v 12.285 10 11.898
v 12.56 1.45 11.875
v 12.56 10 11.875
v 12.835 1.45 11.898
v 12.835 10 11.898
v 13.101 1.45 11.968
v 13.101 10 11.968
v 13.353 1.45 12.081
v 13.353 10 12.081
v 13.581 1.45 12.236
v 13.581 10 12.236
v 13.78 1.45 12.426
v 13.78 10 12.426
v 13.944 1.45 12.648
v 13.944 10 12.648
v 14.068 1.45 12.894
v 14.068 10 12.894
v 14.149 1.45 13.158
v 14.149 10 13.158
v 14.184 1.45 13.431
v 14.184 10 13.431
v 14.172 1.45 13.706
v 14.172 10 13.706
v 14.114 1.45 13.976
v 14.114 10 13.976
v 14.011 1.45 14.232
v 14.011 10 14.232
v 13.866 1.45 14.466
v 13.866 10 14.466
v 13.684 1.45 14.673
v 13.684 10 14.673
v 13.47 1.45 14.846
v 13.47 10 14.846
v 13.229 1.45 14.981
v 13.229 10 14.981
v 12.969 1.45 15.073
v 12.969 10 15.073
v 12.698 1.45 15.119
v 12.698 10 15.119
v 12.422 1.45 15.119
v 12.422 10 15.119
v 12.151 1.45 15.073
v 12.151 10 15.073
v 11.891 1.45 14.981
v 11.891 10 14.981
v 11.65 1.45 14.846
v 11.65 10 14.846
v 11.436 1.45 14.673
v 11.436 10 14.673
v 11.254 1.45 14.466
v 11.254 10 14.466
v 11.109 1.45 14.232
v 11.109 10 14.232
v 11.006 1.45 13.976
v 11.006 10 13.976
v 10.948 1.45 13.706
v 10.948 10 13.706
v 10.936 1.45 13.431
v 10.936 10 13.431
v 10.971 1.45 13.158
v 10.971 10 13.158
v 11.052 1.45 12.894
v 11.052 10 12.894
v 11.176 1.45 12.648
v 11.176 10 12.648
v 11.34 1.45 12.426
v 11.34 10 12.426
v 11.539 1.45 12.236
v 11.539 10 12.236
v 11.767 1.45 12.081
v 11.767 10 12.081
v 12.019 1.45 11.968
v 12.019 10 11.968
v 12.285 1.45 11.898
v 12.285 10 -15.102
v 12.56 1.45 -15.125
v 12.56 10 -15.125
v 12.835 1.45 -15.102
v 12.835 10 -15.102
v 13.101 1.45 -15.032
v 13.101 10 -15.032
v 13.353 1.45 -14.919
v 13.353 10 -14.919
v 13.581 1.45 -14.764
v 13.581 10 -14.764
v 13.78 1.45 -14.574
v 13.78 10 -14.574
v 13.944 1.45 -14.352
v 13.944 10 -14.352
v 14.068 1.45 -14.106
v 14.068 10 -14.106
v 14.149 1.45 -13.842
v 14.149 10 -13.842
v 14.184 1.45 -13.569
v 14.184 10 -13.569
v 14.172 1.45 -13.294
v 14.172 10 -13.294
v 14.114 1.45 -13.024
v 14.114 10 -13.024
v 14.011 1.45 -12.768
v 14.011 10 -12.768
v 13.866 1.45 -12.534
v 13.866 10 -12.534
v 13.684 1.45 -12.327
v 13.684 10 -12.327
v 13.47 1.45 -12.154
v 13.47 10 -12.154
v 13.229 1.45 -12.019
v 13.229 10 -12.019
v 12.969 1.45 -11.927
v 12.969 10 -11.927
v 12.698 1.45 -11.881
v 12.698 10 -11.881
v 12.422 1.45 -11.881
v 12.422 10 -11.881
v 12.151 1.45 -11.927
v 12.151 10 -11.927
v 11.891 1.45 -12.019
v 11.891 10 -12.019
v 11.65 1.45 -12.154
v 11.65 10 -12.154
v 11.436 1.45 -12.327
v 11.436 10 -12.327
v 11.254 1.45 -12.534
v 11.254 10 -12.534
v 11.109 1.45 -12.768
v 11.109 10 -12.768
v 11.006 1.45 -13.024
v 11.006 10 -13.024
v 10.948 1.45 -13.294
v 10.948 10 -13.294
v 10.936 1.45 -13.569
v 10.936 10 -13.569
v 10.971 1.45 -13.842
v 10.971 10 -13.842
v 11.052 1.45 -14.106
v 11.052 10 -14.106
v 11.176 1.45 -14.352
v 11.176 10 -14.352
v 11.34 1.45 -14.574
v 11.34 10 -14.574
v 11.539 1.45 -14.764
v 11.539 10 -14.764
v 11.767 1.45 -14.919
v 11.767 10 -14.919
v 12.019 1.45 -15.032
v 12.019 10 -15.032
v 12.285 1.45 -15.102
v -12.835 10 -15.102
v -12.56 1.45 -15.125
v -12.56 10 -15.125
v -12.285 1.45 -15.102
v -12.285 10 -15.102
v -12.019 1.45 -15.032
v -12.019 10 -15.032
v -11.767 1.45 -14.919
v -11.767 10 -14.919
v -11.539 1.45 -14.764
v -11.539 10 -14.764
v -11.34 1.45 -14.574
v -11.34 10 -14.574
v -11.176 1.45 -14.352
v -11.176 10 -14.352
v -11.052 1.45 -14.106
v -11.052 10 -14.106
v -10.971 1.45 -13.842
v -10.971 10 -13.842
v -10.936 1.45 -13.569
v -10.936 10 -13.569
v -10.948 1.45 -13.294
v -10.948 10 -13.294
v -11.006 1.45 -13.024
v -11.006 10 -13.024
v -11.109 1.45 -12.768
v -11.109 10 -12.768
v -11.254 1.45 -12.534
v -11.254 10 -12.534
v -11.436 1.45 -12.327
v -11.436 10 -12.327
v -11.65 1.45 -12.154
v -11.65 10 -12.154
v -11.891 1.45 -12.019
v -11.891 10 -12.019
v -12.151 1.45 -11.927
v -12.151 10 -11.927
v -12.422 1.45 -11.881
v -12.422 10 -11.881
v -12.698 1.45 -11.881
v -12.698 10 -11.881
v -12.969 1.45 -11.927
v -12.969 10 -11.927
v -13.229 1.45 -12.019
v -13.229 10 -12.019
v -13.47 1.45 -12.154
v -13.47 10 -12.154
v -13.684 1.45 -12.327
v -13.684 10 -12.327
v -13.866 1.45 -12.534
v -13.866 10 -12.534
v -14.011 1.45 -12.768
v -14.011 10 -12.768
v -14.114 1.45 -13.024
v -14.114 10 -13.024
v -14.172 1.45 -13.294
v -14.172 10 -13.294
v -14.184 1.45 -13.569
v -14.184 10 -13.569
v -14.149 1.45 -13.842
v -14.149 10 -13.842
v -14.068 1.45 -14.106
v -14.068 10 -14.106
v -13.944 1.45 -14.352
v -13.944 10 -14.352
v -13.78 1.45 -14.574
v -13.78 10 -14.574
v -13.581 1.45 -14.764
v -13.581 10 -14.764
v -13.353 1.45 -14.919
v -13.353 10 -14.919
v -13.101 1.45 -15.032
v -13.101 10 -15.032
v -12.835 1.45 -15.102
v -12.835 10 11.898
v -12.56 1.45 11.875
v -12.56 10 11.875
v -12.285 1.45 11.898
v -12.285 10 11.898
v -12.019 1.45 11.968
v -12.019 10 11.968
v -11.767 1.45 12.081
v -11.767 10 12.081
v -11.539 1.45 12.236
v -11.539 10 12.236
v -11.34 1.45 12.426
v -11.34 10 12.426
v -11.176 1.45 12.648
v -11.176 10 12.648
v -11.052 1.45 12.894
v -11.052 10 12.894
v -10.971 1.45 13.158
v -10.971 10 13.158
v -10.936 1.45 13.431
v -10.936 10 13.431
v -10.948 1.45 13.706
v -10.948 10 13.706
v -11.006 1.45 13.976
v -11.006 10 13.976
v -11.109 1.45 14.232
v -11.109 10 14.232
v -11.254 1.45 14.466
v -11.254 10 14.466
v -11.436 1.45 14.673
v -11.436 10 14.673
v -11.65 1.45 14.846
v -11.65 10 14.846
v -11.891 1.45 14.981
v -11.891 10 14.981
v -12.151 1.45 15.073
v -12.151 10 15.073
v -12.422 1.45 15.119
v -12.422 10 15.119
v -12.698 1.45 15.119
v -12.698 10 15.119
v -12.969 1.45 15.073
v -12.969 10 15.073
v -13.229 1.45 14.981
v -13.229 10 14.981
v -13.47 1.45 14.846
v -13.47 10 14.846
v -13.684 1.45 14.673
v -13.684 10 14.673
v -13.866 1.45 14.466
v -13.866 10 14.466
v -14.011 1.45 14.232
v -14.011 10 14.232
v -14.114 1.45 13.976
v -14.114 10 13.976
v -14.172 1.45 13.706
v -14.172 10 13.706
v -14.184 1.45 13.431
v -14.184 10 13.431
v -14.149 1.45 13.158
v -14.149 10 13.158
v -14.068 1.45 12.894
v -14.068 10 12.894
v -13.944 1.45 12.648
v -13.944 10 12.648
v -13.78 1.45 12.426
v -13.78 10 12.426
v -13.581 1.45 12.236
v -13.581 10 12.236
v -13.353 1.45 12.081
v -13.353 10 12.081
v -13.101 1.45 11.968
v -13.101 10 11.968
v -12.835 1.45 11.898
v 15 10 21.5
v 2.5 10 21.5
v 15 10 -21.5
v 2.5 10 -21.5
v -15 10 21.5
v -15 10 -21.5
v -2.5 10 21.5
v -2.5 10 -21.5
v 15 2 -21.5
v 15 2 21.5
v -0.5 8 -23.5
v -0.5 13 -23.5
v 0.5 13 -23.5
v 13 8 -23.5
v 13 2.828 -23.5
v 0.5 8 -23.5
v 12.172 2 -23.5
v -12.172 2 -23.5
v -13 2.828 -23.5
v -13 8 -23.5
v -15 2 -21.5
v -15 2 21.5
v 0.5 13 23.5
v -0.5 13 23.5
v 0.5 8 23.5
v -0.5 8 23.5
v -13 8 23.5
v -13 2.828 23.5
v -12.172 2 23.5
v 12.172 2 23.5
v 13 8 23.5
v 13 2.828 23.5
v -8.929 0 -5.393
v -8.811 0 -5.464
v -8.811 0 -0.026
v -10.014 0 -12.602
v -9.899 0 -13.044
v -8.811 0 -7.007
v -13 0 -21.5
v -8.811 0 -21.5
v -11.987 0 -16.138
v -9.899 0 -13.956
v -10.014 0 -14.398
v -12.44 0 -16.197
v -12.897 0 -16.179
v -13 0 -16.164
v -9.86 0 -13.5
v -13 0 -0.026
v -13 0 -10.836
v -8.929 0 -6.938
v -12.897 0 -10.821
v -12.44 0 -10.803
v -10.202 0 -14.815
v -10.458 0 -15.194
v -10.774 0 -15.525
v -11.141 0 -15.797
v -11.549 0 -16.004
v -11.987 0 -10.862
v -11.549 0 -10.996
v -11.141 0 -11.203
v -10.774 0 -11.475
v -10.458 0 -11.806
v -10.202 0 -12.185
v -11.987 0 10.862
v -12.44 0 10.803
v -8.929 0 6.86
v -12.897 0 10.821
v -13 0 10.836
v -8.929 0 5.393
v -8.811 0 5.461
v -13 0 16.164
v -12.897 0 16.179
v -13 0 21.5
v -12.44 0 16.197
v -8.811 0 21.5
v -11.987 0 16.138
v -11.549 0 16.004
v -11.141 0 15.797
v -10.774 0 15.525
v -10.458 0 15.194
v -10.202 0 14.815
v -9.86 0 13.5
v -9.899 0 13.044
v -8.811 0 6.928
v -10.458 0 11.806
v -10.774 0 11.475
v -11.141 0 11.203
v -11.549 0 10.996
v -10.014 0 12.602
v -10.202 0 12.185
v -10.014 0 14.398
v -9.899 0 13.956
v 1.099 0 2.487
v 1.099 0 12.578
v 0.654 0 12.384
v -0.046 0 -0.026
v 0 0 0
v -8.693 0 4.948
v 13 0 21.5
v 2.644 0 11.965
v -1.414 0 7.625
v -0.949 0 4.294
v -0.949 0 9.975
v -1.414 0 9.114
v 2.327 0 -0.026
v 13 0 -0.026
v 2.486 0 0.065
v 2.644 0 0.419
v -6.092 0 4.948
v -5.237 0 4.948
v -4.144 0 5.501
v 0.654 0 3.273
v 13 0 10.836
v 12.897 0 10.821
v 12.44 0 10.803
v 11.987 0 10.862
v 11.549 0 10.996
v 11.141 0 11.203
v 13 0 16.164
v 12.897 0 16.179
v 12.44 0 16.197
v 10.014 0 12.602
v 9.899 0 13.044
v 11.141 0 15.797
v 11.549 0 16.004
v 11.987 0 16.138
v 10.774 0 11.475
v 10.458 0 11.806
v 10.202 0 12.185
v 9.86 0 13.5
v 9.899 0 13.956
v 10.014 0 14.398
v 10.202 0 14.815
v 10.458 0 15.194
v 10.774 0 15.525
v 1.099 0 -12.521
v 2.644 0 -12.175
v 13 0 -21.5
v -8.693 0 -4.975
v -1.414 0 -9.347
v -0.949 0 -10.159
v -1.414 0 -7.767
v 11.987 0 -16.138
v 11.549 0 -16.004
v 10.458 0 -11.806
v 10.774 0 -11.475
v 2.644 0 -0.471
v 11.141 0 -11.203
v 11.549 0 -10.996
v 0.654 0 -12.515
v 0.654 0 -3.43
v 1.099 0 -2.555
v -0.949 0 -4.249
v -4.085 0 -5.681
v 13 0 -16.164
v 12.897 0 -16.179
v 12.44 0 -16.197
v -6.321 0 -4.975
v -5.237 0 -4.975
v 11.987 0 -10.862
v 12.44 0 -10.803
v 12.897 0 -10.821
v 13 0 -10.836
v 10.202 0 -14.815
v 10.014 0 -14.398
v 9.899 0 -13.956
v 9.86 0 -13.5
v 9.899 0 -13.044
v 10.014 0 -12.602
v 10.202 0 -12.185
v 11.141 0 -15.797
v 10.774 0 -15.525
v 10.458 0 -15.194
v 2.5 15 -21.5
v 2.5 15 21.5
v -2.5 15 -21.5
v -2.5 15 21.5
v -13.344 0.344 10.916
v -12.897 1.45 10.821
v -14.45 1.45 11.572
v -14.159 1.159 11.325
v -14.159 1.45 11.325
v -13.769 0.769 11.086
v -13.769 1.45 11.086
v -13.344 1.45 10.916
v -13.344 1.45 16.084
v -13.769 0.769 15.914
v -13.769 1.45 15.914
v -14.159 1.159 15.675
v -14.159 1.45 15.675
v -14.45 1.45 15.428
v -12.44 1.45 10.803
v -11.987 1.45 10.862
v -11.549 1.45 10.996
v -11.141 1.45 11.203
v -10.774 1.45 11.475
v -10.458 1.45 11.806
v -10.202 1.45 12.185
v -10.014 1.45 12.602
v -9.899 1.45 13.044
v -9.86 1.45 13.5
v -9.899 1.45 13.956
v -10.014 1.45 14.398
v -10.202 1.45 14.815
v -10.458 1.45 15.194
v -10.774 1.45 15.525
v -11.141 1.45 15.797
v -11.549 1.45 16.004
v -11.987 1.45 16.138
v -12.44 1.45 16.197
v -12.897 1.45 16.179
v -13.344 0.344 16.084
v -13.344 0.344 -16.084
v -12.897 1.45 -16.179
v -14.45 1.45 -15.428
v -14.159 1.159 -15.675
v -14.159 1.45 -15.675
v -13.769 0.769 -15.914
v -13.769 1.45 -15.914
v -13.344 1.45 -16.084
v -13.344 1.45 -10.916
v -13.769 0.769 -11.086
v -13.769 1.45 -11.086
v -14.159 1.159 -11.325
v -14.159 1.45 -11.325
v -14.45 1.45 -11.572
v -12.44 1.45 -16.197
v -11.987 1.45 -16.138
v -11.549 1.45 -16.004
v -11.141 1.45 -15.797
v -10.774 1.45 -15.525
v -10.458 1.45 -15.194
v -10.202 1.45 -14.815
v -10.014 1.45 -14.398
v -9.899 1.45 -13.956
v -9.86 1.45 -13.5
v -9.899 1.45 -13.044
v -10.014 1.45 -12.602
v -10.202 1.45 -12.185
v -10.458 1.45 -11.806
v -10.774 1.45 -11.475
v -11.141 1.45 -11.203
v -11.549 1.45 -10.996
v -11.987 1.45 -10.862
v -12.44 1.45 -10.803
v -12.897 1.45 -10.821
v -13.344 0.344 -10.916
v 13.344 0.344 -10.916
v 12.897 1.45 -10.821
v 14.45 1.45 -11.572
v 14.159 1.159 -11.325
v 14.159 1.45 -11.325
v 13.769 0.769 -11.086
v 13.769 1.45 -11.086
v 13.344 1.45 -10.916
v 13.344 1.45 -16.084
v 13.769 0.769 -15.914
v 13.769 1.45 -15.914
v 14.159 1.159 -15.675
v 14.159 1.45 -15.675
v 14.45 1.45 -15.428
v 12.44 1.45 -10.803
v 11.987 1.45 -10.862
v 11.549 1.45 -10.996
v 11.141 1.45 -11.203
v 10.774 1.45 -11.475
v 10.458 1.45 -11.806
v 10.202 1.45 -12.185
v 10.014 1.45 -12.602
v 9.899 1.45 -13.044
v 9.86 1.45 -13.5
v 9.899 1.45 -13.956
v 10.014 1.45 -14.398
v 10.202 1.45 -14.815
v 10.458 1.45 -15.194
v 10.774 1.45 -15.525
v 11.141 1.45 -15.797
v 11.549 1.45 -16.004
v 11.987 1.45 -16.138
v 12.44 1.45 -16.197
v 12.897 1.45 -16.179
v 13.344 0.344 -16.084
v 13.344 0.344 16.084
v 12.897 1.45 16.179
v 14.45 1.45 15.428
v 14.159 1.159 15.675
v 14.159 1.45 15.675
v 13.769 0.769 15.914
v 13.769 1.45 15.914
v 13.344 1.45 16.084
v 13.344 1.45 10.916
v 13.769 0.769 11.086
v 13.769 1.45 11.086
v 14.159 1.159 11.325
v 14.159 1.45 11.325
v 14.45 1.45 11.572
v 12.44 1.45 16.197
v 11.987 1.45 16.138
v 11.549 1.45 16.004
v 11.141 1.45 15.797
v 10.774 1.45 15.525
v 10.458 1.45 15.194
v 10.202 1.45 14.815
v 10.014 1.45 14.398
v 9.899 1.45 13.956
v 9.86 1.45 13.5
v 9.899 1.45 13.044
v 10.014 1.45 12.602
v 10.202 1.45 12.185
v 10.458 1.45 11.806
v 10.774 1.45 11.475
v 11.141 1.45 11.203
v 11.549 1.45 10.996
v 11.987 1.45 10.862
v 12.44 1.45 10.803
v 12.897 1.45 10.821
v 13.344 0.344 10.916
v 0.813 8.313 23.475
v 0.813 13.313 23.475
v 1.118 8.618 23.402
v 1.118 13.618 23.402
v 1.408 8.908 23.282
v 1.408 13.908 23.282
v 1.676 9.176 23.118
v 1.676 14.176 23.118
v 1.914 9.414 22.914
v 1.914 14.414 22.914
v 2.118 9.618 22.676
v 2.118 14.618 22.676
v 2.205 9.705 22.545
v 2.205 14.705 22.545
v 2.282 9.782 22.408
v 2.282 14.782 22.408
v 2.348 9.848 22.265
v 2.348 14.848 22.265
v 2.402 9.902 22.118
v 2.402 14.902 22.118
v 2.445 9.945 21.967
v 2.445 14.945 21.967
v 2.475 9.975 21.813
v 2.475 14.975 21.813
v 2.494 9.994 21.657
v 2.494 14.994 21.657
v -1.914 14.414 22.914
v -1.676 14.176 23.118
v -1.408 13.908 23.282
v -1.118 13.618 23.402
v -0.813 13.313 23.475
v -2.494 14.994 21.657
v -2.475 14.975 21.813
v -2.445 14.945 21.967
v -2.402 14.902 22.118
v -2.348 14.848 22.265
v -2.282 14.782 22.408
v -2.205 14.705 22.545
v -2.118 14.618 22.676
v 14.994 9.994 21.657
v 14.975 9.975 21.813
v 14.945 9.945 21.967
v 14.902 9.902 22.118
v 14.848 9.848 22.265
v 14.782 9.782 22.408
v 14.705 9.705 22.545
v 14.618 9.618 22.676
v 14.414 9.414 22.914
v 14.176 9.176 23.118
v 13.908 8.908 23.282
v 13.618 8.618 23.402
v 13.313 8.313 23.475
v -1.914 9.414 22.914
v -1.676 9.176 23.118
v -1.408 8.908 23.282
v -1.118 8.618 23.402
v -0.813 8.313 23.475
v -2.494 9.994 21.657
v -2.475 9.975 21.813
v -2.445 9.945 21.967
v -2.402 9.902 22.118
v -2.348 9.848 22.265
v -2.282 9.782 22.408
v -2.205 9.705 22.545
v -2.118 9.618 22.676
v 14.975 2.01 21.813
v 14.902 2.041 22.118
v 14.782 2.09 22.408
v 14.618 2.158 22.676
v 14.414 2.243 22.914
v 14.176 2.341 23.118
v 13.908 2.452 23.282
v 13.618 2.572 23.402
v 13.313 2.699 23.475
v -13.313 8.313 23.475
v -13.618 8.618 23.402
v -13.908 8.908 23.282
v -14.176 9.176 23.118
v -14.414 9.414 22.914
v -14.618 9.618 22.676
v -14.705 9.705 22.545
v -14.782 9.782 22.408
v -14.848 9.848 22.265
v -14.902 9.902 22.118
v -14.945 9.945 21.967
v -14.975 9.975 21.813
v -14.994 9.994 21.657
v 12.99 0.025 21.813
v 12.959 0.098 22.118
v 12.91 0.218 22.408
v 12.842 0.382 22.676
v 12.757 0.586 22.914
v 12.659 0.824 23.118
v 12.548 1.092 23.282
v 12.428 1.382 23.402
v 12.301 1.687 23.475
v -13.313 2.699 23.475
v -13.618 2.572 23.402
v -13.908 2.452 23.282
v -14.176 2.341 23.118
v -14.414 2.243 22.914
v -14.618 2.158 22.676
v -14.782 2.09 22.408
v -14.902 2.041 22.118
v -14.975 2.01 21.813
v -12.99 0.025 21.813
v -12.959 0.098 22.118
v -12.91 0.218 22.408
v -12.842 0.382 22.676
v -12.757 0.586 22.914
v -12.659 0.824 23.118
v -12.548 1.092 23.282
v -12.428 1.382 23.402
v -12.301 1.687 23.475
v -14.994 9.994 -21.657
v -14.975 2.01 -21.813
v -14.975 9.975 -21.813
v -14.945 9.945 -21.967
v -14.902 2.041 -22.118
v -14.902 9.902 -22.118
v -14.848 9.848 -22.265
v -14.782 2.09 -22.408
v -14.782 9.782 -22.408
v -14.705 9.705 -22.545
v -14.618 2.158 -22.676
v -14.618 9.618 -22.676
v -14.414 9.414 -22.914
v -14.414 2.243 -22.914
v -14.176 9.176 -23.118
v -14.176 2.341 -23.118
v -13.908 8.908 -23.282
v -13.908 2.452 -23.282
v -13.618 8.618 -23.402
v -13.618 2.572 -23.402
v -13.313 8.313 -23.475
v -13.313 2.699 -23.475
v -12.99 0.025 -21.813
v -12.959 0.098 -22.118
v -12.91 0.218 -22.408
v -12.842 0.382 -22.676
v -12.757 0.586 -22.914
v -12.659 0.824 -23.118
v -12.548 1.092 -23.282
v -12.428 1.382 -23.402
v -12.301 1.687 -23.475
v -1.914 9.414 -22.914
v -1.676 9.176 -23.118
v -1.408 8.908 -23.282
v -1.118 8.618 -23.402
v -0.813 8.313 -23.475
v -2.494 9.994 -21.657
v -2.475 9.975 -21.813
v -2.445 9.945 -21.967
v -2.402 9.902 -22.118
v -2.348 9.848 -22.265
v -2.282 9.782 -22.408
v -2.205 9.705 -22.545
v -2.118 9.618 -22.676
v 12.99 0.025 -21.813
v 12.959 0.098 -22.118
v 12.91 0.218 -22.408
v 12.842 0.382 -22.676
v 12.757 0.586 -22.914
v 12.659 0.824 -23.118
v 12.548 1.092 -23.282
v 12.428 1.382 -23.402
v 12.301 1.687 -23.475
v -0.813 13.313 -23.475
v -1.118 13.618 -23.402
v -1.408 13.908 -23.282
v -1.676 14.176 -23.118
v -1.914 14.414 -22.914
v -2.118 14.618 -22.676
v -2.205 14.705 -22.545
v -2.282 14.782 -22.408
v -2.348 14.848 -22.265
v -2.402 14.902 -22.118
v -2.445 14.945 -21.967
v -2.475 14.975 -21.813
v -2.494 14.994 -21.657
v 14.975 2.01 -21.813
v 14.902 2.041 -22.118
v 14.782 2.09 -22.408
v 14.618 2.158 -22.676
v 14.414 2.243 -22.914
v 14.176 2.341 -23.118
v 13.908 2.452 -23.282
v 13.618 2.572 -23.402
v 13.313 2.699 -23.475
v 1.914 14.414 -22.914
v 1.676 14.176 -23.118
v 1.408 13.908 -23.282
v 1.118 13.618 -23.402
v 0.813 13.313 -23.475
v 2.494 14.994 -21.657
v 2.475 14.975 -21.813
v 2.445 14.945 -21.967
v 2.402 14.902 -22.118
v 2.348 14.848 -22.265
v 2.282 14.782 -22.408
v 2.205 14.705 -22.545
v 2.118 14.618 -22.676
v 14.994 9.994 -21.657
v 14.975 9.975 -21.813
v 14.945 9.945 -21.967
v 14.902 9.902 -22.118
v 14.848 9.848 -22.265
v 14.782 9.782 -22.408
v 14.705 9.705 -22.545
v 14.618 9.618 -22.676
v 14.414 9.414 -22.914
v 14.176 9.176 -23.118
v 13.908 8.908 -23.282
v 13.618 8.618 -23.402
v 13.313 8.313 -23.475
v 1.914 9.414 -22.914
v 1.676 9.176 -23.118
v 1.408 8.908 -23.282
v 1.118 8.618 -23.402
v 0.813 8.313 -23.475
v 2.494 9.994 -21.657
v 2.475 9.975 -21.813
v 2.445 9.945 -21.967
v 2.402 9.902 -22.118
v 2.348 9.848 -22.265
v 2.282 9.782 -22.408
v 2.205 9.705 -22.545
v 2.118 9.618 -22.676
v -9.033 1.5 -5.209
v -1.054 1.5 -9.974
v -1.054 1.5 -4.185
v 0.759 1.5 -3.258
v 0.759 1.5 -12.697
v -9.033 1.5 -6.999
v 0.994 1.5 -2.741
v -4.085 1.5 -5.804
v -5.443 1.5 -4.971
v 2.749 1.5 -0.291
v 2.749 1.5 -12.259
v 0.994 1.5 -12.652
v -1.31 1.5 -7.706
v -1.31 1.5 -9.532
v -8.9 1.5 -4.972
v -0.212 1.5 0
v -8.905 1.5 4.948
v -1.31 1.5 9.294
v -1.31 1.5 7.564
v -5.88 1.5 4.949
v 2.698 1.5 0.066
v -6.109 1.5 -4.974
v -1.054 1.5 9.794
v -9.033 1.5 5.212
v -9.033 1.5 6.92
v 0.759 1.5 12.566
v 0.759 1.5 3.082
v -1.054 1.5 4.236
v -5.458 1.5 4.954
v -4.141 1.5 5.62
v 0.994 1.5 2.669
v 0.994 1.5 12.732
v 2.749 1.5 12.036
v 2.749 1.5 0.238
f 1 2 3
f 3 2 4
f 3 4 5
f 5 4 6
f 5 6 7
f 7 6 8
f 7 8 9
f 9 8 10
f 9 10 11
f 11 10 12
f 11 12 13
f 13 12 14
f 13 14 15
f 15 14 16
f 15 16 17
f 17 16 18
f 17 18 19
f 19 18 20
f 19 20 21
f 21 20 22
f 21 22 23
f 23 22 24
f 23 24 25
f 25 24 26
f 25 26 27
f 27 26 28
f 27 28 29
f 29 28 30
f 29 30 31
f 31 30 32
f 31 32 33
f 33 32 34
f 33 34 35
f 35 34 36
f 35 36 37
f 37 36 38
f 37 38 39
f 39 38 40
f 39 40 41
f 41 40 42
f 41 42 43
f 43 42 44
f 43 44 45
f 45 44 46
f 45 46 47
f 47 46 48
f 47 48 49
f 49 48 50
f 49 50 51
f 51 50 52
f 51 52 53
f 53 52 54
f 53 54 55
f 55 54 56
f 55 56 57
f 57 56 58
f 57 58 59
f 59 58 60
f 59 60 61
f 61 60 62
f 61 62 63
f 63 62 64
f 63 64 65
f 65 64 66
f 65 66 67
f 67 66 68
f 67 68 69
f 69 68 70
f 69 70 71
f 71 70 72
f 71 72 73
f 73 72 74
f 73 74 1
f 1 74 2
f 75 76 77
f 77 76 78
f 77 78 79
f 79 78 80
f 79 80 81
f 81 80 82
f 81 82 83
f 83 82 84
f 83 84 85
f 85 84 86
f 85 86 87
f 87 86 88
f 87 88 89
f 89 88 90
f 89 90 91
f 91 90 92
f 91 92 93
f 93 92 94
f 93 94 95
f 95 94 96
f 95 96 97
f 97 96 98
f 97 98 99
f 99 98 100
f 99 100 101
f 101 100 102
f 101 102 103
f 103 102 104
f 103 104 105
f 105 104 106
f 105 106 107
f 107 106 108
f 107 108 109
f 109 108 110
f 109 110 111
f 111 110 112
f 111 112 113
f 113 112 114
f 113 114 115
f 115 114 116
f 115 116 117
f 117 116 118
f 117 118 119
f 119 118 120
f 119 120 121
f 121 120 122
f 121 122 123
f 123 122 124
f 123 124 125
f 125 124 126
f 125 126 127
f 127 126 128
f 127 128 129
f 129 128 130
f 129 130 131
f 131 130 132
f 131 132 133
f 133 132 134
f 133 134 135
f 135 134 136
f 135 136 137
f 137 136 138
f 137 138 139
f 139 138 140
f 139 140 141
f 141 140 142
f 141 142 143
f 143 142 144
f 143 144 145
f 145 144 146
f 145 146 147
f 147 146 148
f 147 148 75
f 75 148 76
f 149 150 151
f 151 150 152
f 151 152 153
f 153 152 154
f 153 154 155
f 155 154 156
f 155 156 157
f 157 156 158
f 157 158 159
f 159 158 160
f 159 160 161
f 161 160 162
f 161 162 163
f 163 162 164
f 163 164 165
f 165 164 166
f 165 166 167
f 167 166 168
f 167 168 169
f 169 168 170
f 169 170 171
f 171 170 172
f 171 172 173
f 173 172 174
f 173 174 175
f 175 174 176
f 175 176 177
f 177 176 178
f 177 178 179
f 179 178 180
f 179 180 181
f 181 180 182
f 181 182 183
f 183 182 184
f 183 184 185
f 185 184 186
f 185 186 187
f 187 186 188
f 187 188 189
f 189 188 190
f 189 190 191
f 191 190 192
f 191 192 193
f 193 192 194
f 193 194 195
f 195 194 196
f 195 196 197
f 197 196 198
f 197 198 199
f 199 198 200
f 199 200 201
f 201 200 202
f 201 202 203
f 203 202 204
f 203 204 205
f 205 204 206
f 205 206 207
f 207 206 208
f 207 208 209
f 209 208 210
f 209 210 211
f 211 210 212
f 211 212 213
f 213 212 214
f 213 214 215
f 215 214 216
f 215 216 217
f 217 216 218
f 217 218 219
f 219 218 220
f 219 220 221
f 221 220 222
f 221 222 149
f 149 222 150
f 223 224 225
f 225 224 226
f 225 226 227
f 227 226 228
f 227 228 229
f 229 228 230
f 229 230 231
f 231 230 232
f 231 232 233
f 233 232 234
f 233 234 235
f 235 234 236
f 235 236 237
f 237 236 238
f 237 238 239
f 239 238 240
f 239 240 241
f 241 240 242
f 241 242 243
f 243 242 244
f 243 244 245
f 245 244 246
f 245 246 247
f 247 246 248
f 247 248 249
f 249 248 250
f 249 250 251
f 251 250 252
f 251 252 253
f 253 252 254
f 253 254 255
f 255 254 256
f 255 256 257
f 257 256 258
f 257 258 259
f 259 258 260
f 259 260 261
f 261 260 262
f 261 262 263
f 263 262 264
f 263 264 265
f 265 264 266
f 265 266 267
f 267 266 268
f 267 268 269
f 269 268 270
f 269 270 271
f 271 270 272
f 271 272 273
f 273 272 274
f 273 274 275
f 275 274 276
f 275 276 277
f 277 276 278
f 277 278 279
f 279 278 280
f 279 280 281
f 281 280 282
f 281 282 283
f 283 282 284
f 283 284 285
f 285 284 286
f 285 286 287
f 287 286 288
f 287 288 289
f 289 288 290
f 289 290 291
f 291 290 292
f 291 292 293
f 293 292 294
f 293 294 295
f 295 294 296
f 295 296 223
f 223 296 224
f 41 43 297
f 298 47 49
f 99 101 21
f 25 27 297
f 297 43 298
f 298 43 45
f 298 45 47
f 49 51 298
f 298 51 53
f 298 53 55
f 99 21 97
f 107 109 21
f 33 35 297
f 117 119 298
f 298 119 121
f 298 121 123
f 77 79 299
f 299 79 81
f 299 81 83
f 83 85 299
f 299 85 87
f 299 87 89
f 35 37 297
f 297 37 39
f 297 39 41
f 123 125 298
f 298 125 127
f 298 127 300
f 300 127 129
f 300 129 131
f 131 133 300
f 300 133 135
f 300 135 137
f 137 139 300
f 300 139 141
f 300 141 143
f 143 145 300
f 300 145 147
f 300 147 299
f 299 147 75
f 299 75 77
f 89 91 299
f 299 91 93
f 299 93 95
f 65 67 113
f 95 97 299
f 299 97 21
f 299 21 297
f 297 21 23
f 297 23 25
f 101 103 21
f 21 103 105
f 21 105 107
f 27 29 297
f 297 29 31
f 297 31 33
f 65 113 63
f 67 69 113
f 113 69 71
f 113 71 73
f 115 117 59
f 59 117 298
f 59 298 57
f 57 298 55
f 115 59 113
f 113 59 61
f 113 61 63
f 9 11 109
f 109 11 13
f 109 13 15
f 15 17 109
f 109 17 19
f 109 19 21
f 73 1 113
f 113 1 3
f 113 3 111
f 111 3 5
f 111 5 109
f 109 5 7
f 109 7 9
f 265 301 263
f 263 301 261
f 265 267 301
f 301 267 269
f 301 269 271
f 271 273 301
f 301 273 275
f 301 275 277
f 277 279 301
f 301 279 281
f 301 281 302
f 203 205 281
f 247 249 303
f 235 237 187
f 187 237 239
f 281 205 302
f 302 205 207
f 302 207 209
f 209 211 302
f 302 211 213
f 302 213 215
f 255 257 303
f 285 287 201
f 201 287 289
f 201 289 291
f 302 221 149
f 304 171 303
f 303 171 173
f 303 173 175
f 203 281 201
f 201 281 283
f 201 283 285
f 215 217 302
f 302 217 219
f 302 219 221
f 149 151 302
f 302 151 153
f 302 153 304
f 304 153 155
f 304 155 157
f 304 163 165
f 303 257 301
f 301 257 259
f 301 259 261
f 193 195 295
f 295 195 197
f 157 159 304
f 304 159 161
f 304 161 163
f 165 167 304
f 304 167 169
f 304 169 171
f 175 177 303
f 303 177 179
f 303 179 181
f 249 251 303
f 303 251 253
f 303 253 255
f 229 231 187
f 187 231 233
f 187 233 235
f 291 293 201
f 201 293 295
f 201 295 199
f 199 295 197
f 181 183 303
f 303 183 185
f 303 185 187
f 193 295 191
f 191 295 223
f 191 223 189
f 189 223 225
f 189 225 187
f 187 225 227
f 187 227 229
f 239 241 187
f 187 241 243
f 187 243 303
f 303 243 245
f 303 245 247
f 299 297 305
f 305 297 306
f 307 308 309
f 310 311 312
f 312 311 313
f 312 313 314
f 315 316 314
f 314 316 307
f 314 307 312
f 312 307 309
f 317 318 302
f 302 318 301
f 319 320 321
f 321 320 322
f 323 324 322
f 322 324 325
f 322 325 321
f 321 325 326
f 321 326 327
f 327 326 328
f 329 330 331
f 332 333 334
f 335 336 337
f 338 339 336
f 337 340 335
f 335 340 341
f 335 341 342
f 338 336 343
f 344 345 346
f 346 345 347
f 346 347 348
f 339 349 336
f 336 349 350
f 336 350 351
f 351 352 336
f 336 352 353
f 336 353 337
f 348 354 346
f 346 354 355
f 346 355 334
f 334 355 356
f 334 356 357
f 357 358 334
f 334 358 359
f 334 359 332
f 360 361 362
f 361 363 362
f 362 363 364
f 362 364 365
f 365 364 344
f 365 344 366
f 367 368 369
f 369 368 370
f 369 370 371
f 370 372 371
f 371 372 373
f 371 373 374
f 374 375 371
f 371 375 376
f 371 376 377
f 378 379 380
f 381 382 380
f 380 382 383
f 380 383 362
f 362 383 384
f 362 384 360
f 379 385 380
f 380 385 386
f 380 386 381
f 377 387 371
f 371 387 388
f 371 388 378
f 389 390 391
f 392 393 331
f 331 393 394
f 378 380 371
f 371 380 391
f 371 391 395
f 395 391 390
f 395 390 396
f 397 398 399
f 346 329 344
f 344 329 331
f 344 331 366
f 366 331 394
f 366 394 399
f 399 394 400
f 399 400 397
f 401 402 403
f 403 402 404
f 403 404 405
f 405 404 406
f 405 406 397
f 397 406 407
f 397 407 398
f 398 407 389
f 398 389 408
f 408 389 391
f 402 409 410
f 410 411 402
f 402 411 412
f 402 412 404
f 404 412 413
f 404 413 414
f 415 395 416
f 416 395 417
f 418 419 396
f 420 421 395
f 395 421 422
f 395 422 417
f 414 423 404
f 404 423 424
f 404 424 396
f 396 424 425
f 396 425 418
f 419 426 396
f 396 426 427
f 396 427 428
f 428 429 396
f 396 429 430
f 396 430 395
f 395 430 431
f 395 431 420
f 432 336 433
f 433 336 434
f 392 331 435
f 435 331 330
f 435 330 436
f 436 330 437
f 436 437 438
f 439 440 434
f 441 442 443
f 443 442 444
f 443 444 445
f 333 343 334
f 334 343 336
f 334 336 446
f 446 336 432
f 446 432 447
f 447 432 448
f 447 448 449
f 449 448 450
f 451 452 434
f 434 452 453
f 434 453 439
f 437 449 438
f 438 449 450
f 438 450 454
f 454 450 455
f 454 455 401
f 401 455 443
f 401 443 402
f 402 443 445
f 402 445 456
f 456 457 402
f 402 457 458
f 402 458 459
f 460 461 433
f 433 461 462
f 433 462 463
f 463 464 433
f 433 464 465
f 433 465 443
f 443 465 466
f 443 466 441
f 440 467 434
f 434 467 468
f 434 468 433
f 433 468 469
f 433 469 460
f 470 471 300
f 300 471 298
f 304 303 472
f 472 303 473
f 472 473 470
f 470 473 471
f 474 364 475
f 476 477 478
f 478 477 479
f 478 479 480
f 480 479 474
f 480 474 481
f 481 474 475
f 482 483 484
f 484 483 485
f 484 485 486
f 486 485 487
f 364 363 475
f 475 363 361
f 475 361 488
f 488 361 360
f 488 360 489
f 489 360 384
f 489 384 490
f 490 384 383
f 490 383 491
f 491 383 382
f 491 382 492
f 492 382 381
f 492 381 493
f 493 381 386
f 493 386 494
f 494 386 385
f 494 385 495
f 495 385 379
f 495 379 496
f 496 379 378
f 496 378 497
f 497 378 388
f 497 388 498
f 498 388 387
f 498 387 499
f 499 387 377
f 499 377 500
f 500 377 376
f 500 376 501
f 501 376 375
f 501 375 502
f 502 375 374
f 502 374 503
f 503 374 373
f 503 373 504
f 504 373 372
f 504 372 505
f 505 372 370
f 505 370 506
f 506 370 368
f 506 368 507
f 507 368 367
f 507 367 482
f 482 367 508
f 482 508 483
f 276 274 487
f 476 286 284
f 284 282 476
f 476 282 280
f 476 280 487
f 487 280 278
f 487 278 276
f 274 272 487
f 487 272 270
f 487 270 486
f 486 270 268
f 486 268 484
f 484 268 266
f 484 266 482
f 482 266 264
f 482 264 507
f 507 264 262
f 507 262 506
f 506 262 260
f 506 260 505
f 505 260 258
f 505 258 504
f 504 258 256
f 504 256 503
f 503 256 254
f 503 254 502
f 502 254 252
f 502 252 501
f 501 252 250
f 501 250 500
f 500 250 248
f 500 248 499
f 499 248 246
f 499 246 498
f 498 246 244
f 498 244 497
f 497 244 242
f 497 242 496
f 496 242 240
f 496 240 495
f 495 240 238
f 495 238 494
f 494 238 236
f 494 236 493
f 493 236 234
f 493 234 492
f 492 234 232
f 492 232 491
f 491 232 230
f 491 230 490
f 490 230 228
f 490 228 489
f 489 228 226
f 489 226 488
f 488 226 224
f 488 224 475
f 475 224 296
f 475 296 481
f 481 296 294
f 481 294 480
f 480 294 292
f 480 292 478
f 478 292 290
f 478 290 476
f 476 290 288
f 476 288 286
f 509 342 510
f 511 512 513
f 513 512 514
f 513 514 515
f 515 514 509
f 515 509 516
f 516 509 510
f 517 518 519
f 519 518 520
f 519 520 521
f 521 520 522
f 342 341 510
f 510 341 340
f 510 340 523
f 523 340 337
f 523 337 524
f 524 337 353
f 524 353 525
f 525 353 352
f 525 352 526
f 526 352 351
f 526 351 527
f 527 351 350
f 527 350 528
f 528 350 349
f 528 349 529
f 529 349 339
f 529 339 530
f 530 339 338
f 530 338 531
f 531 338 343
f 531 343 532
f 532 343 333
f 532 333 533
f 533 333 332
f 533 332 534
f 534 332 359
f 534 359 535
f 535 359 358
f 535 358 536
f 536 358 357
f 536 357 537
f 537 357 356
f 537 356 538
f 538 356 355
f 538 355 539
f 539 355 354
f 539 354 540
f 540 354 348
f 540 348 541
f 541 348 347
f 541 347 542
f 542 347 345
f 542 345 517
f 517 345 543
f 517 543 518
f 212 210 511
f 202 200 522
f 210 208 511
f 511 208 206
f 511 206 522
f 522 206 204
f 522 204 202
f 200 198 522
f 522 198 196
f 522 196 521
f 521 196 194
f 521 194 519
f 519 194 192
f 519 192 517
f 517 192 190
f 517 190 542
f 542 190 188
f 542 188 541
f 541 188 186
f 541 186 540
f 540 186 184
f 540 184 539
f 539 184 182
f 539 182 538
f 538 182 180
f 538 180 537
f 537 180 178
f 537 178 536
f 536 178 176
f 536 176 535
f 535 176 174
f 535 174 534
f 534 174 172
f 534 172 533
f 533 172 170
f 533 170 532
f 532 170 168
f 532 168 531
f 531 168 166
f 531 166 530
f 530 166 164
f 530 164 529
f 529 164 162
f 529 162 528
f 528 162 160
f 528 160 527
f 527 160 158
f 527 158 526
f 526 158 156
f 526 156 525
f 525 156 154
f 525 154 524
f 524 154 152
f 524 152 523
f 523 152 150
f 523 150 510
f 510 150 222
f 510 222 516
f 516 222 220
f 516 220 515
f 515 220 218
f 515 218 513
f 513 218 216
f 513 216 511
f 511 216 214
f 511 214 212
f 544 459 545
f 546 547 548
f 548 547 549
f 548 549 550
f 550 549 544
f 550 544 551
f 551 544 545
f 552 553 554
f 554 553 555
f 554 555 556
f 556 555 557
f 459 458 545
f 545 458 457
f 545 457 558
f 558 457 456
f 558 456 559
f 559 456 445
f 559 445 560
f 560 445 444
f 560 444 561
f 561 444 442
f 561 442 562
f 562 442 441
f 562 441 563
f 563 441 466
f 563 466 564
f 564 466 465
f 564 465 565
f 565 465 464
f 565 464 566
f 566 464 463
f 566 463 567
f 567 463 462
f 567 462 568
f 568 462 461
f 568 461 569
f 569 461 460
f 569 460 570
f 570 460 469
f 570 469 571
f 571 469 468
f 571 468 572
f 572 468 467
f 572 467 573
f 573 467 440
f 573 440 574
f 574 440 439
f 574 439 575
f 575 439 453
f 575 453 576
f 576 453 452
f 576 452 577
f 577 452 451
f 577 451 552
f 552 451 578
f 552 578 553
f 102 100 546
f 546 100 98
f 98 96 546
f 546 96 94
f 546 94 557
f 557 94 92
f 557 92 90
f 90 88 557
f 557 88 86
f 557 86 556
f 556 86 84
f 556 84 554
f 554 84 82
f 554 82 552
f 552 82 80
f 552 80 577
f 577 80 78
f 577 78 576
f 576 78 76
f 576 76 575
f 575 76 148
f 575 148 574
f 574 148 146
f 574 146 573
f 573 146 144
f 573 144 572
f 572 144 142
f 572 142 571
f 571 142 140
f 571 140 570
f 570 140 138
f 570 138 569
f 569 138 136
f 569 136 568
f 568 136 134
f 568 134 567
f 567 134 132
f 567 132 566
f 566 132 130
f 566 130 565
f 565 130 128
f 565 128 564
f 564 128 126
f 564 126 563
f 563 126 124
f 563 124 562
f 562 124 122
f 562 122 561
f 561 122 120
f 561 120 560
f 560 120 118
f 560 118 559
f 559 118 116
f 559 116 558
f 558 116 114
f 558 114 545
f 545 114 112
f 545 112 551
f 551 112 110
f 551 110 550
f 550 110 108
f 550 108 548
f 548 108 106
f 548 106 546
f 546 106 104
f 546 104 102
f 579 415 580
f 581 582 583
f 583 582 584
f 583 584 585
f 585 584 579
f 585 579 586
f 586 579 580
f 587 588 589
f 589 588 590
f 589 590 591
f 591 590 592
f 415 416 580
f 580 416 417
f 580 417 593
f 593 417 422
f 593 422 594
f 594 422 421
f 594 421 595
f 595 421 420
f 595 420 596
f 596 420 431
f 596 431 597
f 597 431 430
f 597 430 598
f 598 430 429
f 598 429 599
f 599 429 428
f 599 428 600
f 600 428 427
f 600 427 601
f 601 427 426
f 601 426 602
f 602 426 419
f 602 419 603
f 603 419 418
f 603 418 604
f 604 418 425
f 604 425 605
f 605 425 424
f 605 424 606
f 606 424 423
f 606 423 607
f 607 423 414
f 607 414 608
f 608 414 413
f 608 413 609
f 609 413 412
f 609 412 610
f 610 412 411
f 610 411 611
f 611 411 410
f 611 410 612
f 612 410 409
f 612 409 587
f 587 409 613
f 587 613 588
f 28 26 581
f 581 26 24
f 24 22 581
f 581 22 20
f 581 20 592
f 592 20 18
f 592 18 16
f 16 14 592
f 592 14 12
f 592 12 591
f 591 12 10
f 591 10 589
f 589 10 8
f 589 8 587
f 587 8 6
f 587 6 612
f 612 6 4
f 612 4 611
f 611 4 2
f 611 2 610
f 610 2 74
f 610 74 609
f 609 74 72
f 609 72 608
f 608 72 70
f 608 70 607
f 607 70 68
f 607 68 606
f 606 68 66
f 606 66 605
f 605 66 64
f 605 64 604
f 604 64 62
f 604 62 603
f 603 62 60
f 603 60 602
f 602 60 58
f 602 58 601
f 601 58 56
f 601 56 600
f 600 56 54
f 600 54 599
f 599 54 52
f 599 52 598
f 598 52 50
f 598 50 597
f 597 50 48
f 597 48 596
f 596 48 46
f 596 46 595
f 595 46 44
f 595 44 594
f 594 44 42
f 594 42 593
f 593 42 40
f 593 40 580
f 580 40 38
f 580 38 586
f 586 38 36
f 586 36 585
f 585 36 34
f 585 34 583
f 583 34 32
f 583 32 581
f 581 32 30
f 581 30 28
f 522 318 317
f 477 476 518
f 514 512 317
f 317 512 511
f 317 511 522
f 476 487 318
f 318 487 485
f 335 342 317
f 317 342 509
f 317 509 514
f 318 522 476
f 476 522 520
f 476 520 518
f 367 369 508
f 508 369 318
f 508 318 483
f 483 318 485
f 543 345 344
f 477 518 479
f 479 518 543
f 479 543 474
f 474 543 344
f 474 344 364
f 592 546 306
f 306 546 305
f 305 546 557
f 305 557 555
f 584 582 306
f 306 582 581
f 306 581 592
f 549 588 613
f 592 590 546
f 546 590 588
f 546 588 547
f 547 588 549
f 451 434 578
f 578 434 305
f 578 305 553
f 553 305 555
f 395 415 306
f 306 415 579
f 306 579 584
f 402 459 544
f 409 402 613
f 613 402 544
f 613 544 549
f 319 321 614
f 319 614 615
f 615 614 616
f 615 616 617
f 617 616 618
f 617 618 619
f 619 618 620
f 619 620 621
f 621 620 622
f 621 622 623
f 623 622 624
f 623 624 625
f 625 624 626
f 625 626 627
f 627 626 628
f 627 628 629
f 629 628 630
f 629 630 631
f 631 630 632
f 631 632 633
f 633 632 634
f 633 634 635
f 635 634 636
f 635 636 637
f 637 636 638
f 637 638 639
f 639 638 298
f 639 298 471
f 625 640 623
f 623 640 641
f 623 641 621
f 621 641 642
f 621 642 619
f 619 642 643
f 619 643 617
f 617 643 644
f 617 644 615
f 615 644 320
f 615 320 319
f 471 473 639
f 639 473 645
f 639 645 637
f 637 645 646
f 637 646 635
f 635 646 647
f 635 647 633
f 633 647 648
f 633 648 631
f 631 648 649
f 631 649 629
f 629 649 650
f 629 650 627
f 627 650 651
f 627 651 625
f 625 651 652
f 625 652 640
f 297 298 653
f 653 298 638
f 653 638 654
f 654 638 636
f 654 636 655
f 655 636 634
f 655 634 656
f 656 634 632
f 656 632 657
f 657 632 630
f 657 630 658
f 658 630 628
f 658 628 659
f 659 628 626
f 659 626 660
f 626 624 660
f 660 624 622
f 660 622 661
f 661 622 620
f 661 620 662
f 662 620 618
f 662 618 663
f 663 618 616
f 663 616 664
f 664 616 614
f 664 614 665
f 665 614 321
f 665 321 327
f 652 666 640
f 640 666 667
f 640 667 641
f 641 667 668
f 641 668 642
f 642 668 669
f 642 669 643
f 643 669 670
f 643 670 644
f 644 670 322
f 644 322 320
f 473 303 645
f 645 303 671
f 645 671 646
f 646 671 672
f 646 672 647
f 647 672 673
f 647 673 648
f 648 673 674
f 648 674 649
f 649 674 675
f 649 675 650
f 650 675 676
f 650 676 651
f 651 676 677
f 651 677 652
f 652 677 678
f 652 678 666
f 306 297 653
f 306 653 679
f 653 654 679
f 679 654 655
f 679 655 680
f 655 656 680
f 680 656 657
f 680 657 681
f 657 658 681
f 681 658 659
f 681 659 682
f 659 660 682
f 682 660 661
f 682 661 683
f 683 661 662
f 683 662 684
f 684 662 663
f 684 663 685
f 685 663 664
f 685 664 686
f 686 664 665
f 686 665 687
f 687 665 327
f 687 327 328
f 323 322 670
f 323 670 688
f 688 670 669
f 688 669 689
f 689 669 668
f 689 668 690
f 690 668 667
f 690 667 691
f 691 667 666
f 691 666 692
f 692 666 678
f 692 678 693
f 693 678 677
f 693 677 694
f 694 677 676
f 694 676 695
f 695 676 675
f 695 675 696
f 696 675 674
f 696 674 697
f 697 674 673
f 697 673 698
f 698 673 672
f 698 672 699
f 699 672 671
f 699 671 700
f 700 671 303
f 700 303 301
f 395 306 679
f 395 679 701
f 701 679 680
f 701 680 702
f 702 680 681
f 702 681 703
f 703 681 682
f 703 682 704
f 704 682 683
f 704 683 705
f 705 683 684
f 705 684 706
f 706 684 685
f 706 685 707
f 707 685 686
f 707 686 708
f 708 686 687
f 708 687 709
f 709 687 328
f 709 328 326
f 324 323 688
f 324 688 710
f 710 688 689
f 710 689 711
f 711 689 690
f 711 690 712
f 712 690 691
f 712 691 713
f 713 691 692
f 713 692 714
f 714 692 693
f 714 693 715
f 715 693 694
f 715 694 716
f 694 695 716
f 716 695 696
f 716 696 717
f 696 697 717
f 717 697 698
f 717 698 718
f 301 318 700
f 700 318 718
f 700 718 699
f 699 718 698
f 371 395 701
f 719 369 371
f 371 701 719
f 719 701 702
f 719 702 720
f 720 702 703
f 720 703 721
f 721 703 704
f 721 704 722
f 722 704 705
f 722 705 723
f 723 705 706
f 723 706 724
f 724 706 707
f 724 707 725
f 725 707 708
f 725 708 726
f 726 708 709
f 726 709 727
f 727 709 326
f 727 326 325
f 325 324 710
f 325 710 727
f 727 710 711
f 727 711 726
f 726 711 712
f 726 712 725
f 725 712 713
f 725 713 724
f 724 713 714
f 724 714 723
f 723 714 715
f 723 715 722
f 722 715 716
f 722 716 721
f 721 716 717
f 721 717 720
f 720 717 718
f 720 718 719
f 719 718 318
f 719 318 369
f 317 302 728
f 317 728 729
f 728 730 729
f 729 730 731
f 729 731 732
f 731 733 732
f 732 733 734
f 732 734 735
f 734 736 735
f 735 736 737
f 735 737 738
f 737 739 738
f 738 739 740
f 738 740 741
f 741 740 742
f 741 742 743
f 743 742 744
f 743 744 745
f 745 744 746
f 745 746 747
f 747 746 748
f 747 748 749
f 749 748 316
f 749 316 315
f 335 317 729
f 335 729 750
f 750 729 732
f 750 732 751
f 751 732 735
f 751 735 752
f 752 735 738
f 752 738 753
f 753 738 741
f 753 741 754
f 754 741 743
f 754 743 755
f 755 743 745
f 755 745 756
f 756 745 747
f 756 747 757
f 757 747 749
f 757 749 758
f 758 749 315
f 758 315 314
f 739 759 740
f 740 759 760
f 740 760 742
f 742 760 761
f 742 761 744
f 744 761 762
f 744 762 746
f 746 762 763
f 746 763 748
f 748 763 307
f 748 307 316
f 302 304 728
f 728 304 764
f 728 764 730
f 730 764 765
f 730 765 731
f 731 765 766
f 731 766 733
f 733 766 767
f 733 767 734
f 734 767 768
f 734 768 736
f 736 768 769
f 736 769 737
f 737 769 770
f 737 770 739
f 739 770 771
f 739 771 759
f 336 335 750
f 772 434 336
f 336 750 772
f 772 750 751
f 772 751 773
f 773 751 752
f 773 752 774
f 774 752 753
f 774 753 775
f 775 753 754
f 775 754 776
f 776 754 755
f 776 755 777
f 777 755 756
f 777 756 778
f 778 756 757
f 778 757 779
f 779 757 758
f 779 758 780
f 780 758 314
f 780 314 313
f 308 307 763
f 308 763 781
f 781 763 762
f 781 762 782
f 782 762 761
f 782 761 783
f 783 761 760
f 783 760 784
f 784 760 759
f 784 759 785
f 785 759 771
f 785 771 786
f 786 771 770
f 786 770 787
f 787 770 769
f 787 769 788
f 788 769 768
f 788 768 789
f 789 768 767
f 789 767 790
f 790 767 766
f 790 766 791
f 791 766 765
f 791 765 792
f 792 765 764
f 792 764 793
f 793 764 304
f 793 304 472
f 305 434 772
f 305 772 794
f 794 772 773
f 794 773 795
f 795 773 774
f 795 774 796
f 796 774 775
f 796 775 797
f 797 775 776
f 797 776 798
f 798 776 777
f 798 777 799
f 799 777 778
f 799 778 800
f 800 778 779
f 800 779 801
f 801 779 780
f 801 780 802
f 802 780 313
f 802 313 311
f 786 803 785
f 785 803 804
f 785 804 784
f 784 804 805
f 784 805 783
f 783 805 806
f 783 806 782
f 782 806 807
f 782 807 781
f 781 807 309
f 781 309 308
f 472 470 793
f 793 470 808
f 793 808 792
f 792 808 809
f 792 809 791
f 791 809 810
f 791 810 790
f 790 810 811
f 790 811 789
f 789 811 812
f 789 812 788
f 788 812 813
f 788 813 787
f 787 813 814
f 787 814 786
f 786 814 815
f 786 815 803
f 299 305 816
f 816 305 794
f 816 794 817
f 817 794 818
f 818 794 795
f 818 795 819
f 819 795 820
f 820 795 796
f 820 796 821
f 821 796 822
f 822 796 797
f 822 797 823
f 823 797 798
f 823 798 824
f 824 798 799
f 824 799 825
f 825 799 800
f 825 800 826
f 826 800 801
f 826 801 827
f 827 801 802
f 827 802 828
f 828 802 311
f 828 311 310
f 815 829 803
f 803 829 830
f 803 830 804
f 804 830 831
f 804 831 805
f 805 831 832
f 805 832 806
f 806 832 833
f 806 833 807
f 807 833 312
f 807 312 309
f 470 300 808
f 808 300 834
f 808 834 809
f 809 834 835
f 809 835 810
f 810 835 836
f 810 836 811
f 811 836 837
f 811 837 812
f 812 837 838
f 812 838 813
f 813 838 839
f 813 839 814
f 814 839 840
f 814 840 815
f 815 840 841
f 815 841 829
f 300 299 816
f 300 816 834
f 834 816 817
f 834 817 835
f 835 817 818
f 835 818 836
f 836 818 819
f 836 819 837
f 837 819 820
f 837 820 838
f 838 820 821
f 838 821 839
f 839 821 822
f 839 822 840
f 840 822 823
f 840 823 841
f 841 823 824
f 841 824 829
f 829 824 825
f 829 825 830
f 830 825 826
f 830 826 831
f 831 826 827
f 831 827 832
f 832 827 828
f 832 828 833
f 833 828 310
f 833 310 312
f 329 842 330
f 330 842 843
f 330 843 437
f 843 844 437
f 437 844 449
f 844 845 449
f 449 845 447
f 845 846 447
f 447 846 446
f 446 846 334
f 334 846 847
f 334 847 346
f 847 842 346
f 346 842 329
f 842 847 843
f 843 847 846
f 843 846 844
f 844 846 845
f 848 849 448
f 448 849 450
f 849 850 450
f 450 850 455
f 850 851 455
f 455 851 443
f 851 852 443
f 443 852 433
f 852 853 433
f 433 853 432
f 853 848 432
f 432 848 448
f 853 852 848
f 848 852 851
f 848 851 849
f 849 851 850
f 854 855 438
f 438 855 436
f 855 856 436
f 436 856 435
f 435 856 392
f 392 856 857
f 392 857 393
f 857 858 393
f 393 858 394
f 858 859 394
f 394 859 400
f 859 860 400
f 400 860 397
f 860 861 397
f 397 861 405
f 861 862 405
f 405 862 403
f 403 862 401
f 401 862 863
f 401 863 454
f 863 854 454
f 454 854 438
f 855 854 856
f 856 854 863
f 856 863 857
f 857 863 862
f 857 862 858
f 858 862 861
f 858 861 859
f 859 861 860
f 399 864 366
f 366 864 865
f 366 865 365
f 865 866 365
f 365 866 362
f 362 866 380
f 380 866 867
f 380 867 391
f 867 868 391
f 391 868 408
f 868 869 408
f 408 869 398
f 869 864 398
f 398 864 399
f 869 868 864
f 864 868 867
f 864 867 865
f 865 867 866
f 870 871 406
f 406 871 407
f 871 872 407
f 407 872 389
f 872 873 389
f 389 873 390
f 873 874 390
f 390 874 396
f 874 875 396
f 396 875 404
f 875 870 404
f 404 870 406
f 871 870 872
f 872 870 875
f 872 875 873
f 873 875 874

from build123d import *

# Parameters (mm, degrees)
SKETCH1_W                    = 30
SKETCH1_H                    = 47
BOSS_EXTRUDE1_DEPTH          = 10
SKETCH2_W                    = 5
SKETCH2_H                    = 47
BOSS_EXTRUDE2_DEPTH          = 5
SKETCH3_R                    = 1.625
CUT_EXTRUDE1_DEPTH           = 32.658332237
SKETCH4_R                    = 2.7
CUT_EXTRUDE2_DEPTH           = 1.45
CHAMFER1_SIZE                = 2
CHAMFER2_SIZE                = 2
FILLET1_R                    = 2
FILLET2_R                    = 2
CUT_EXTRUDE6_DEPTH           = 1.5
CUT_EXTRUDE6_DRAFT           = 4
CUT_EXTRUDE6_PROFILE_2_DEPTH = 1.5
CUT_EXTRUDE6_PROFILE_2_DRAFT = 4
CUT_EXTRUDE6_PROFILE_3_DEPTH = 1.5
CUT_EXTRUDE6_PROFILE_3_DRAFT = 4
CUT_EXTRUDE6_PROFILE_4_DEPTH = 1.5
CUT_EXTRUDE6_PROFILE_4_DRAFT = 4
CUT_EXTRUDE6_PROFILE_5_DEPTH = 1.5
CUT_EXTRUDE6_PROFILE_5_DRAFT = 4


with BuildPart() as part:
    # Sketch1 → Boss-Extrude1 (new body)
    with BuildSketch(Plane(origin=(0, 0, 0), x_dir=(1, 0, 0), z_dir=(0, 1, 0))):
        Rectangle(SKETCH1_W, SKETCH1_H)
    extrude(amount=BOSS_EXTRUDE1_DEPTH)

    # Sketch2 → Boss-Extrude2 (add)
    with BuildSketch(Plane(origin=(0, 10, 0), x_dir=(1, 0, 0), z_dir=(0, 1, 0))):
        Rectangle(SKETCH2_W, SKETCH2_H)
    extrude(amount=BOSS_EXTRUDE2_DEPTH)

    # Sketch3 → Cut-Extrude1 (cut, through all)
    with BuildSketch(Plane.XZ):
        with Locations(Location((-12.56, 13.5, 0), (0, 0, 270))):
            Circle(SKETCH3_R)
        with Locations(Location((-12.56, -13.5, 0), (0, 0, 270))):
            Circle(SKETCH3_R)
        with Locations(Location((12.56, -13.5, 0), (0, 0, 270))):
            Circle(SKETCH3_R)
        with Locations(Location((12.56, 13.5, 0), (0, 0, 270))):
            Circle(SKETCH3_R)
    extrude(amount=-CUT_EXTRUDE1_DEPTH, mode=Mode.SUBTRACT)

    # Sketch4 → Cut-Extrude2 (cut)
    with BuildSketch(Plane.XZ):
        with Locations((-12.56, 13.5)):
            Circle(SKETCH4_R)
        with Locations((-12.56, -13.5)):
            Circle(SKETCH4_R)
        with Locations((12.56, -13.5)):
            Circle(SKETCH4_R)
        with Locations((12.56, 13.5)):
            Circle(SKETCH4_R)
    extrude(amount=-CUT_EXTRUDE2_DEPTH, mode=Mode.SUBTRACT)

    # Chamfer1
    # the kernel refuses this chamfer: 2 mm, written as the material it takes off along each edge
    with BuildSketch(Plane(origin=(-15, 0, -28.643365976), x_dir=(0.9996219169112968, -0.027495876610586365, 0), z_dir=(0, 0, 1)), Plane(origin=(-15, 0, 9.512661705), x_dir=(0.9996219169112968, -0.027495876610586365, 0), z_dir=(0, 0, 1))) as chamfer1_piece_1:
        Polygon((CHAMFER1_SIZE * 0.999621916911, CHAMFER1_SIZE * 0.0274958766106), (-CHAMFER1_SIZE * 0.0274958766106, CHAMFER1_SIZE * 0.999621916911), (0, 0), align=None)
    extrude(amount=19.130704271, mode=Mode.SUBTRACT)
    with BuildSketch(Plane(origin=(-15, 0, -17.487338295), x_dir=(0.9996219169112968, -0.027495876610586365, 0), z_dir=(0, 0, 1))) as chamfer1_piece_2:
        Polygon((CHAMFER1_SIZE * 0.999621916911, CHAMFER1_SIZE * 0.0274958766106), (-CHAMFER1_SIZE * 0.0274958766106, CHAMFER1_SIZE * 0.999621916911), (0, 0), align=None)
    extrude(amount=34.974676589, mode=Mode.SUBTRACT)

    # Chamfer2
    # the kernel refuses this chamfer: 2 mm, written as the material it takes off along each edge
    with BuildSketch(Plane(origin=(15, 0, 28.643365976), x_dir=(0.027495876610586494, 0.9996219169112968, 0), z_dir=(0, 0, -1)), Plane(origin=(15, 0, -9.512661705), x_dir=(0.027495876610586494, 0.9996219169112968, 0), z_dir=(0, 0, -1))) as chamfer2_piece_1:
        Polygon((CHAMFER2_SIZE * 0.999621916911, -CHAMFER2_SIZE * 0.0274958766106), (-CHAMFER2_SIZE * 0.0274958766106, -CHAMFER2_SIZE * 0.999621916911), (0, 0), align=None)
    extrude(amount=19.130704271, mode=Mode.SUBTRACT)
    with BuildSketch(Plane(origin=(15, 0, 17.487338295), x_dir=(0.027495876610586494, 0.9996219169112968, 0), z_dir=(0, 0, -1))) as chamfer2_piece_2:
        Polygon((CHAMFER2_SIZE * 0.999621916911, -CHAMFER2_SIZE * 0.0274958766106), (-CHAMFER2_SIZE * 0.0274958766106, -CHAMFER2_SIZE * 0.999621916911), (0, 0), align=None)
    extrude(amount=34.974676589, mode=Mode.SUBTRACT)

    # Fillet1
    fillet1_edges = [part.edges().sort_by_distance(p)[0] for p in [
        (-14, 1, 23.5),
        (-15, 6, 23.5),
        (-8.75, 10, 23.5),
        (-2.5, 12.5, 23.5),
        (0, 15, 23.5),
        (2.5, 12.5, 23.5),
        (8.75, 10, 23.5),
        (15, 6, 23.5),
        (14, 1, 23.5),
        (0, 0, 23.5),
    ]]
    fillet(fillet1_edges, radius=FILLET1_R)

    # Fillet2
    fillet2_edges = [part.edges().sort_by_distance(p)[0] for p in [
        (8.75, 10, -23.5),
        (2.5, 12.5, -23.5),
        (0, 15, -23.5),
        (-2.5, 12.5, -23.5),
        (-8.75, 10, -23.5),
        (-15, 6, -23.5),
        (-14, 1, -23.5),
        (0, 0, -23.5),
        (14, 1, -23.5),
        (15, 6, -23.5),
    ]]
    fillet(fillet2_edges, radius=FILLET2_R)


with BuildPart() as cut_extrude6_tool:
    # Mobious Logo → Cut-Extrude6 (with draft: the straight prism first)
    with BuildSketch(Plane.XZ):
        Polygon((-8.928580544, -5.393458037), (-8.928580544, -6.93818631), (0.653971114, -12.514917192), (0.653971114, -3.429820402), (-0.949401841, -4.248746813), (-0.949401841, -10.158552031), align=None)
    extrude(amount=-CUT_EXTRUDE6_DEPTH)
    # Cut-Extrude6: the draft: its side faces are tilted about the plane it starts from
    cut_extrude6_sides = [cut_extrude6_tool.faces().sort_by_distance(p)[0] for p in [
        (-8.928580544, 0.75, -6.165822173),
        (-4.137304715, 0.75, -9.726551751),
        (0.653971114, 0.75, -7.972368797),
        (-0.147715364, 0.75, -3.839283608),
        (-0.949401841, 0.75, -7.203649422),
        (-4.938991193, 0.75, -7.776005034),
    ]]
    draft(cut_extrude6_sides, Plane.XZ, CUT_EXTRUDE6_DRAFT)


with BuildPart() as part_1:
    add(part.part)

    # Cut-Extrude6: cut by cut_extrude6_tool
    add(cut_extrude6_tool.part, mode=Mode.SUBTRACT)


with BuildPart() as cut_extrude6_profile_2_tool:
    # Mobious Logo → Cut-Extrude6 profile 2 (with draft: the straight prism first)
    with BuildSketch(Plane.XZ):
        Polygon((-4.084941045, -5.681458223), (1.099062311, -2.555426049), (1.099062311, -12.520785535), (2.643790584, -12.174553336), (2.643790584, -0.471273032), (-5.23694179, -4.974548675), align=None)
    extrude(amount=-CUT_EXTRUDE6_PROFILE_2_DEPTH)
    # Cut-Extrude6 profile 2: the draft: its side faces are tilted about the plane it starts from
    cut_extrude6_profile_2_sides = [cut_extrude6_profile_2_tool.faces().sort_by_distance(p)[0] for p in [
        (-1.492939367, 0.75, -4.118442136),
        (1.099062311, 0.75, -7.538105792),
        (1.871426448, 0.75, -12.347669435),
        (2.643790584, 0.75, -6.322913184),
        (-1.296575603, 0.75, -2.722910854),
        (-4.660941418, 0.75, -5.328003449),
    ]]
    draft(cut_extrude6_profile_2_sides, Plane.XZ, CUT_EXTRUDE6_PROFILE_2_DRAFT)


with BuildPart() as part_2:
    add(part_1.part)

    # Cut-Extrude6 profile 2: cut by cut_extrude6_profile_2_tool
    add(cut_extrude6_profile_2_tool.part, mode=Mode.SUBTRACT)


with BuildPart() as cut_extrude6_profile_3_tool:
    # Mobious Logo → Cut-Extrude6 profile 3 (with draft: the straight prism first)
    with BuildSketch(Plane.XZ):
        Polygon((-1.414393861, -9.346915142), (-1.414393861, -7.767367916), (-6.320622953, -4.974548675), (2.486400923, 0.065282344), (-6.091859658, 4.94836684), (-1.414393861, 7.625052806), (-1.414393861, 9.113526764), (-8.692944028, 4.94836684), (0, 0), (-8.692944028, -4.974548675), align=None)
    extrude(amount=-CUT_EXTRUDE6_PROFILE_3_DEPTH)
    # Cut-Extrude6 profile 3: the draft: its side faces are tilted about the plane it starts from
    cut_extrude6_profile_3_sides = [cut_extrude6_profile_3_tool.faces().sort_by_distance(p)[0] for p in [
        (-1.414393861, 0.75, -8.557141529),
        (-3.867508407, 0.75, -6.370958296),
        (-1.917111015, 0.75, -2.454633165),
        (-1.802729367, 0.75, 2.506824592),
        (-3.75312676, 0.75, 6.286709823),
        (-1.414393861, 0.75, 8.369289785),
        (-5.053668945, 0.75, 7.030946802),
        (-4.346472014, 0.75, 2.47418342),
        (-4.346472014, 0.75, -2.487274337),
        (-5.053668945, 0.75, -7.160731908),
    ]]
    draft(cut_extrude6_profile_3_sides, Plane.XZ, CUT_EXTRUDE6_PROFILE_3_DRAFT)


with BuildPart() as part_3:
    add(part_2.part)

    # Cut-Extrude6 profile 3: cut by cut_extrude6_profile_3_tool
    add(cut_extrude6_profile_3_tool.part, mode=Mode.SUBTRACT)


with BuildPart() as cut_extrude6_profile_4_tool:
    # Mobious Logo → Cut-Extrude6 profile 4 (with draft: the straight prism first)
    with BuildSketch(Plane.XZ):
        Polygon((-8.928580544, 5.393458037), (-0.949401841, 9.975279185), (-0.949401841, 4.293820961), (0.653971114, 3.272729391), (0.653971114, 12.384008017), (-8.928580544, 6.859640804), align=None)
    extrude(amount=-CUT_EXTRUDE6_PROFILE_4_DEPTH)
    # Cut-Extrude6 profile 4: the draft: its side faces are tilted about the plane it starts from
    cut_extrude6_profile_4_sides = [cut_extrude6_profile_4_tool.faces().sort_by_distance(p)[0] for p in [
        (-4.938991193, 0.75, 7.684368611),
        (-0.949401841, 0.75, 7.134550073),
        (-0.147715364, 0.75, 3.783275176),
        (0.653971114, 0.75, 7.828368704),
        (-4.137304715, 0.75, 9.62182441),
        (-8.928580544, 0.75, 6.126549421),
    ]]
    draft(cut_extrude6_profile_4_sides, Plane.XZ, CUT_EXTRUDE6_PROFILE_4_DRAFT)


with BuildPart() as part_4:
    add(part_3.part)

    # Cut-Extrude6 profile 4: cut by cut_extrude6_profile_4_tool
    add(cut_extrude6_profile_4_tool.part, mode=Mode.SUBTRACT)


with BuildPart() as cut_extrude6_profile_5_tool:
    # Mobious Logo → Cut-Extrude6 profile 5 (with draft: the straight prism first)
    with BuildSketch(Plane.XZ):
        Polygon((-5.23694179, 4.94836684), (2.643790584, 0.418909362), (2.643790584, 11.965098655), (1.099062311, 12.577663315), (1.099062311, 2.487274337), (-4.143752967, 5.500586773), align=None)
    extrude(amount=-CUT_EXTRUDE6_PROFILE_5_DEPTH)
    # Cut-Extrude6 profile 5: the draft: its side faces are tilted about the plane it starts from
    cut_extrude6_profile_5_sides = [cut_extrude6_profile_5_tool.faces().sort_by_distance(p)[0] for p in [
        (-1.296575603, 0.75, 2.683638101),
        (2.643790584, 0.75, 6.192004008),
        (1.871426448, 0.75, 12.271380985),
        (1.099062311, 0.75, 7.532468826),
        (-1.522345328, 0.75, 3.993930555),
        (-4.690347379, 0.75, 5.224476806),
    ]]
    draft(cut_extrude6_profile_5_sides, Plane.XZ, CUT_EXTRUDE6_PROFILE_5_DRAFT)


with BuildPart() as part_5:
    add(part_4.part)

    # Cut-Extrude6 profile 5: cut by cut_extrude6_profile_5_tool
    add(cut_extrude6_profile_5_tool.part, mode=Mode.SUBTRACT)


solid = part_5.part
